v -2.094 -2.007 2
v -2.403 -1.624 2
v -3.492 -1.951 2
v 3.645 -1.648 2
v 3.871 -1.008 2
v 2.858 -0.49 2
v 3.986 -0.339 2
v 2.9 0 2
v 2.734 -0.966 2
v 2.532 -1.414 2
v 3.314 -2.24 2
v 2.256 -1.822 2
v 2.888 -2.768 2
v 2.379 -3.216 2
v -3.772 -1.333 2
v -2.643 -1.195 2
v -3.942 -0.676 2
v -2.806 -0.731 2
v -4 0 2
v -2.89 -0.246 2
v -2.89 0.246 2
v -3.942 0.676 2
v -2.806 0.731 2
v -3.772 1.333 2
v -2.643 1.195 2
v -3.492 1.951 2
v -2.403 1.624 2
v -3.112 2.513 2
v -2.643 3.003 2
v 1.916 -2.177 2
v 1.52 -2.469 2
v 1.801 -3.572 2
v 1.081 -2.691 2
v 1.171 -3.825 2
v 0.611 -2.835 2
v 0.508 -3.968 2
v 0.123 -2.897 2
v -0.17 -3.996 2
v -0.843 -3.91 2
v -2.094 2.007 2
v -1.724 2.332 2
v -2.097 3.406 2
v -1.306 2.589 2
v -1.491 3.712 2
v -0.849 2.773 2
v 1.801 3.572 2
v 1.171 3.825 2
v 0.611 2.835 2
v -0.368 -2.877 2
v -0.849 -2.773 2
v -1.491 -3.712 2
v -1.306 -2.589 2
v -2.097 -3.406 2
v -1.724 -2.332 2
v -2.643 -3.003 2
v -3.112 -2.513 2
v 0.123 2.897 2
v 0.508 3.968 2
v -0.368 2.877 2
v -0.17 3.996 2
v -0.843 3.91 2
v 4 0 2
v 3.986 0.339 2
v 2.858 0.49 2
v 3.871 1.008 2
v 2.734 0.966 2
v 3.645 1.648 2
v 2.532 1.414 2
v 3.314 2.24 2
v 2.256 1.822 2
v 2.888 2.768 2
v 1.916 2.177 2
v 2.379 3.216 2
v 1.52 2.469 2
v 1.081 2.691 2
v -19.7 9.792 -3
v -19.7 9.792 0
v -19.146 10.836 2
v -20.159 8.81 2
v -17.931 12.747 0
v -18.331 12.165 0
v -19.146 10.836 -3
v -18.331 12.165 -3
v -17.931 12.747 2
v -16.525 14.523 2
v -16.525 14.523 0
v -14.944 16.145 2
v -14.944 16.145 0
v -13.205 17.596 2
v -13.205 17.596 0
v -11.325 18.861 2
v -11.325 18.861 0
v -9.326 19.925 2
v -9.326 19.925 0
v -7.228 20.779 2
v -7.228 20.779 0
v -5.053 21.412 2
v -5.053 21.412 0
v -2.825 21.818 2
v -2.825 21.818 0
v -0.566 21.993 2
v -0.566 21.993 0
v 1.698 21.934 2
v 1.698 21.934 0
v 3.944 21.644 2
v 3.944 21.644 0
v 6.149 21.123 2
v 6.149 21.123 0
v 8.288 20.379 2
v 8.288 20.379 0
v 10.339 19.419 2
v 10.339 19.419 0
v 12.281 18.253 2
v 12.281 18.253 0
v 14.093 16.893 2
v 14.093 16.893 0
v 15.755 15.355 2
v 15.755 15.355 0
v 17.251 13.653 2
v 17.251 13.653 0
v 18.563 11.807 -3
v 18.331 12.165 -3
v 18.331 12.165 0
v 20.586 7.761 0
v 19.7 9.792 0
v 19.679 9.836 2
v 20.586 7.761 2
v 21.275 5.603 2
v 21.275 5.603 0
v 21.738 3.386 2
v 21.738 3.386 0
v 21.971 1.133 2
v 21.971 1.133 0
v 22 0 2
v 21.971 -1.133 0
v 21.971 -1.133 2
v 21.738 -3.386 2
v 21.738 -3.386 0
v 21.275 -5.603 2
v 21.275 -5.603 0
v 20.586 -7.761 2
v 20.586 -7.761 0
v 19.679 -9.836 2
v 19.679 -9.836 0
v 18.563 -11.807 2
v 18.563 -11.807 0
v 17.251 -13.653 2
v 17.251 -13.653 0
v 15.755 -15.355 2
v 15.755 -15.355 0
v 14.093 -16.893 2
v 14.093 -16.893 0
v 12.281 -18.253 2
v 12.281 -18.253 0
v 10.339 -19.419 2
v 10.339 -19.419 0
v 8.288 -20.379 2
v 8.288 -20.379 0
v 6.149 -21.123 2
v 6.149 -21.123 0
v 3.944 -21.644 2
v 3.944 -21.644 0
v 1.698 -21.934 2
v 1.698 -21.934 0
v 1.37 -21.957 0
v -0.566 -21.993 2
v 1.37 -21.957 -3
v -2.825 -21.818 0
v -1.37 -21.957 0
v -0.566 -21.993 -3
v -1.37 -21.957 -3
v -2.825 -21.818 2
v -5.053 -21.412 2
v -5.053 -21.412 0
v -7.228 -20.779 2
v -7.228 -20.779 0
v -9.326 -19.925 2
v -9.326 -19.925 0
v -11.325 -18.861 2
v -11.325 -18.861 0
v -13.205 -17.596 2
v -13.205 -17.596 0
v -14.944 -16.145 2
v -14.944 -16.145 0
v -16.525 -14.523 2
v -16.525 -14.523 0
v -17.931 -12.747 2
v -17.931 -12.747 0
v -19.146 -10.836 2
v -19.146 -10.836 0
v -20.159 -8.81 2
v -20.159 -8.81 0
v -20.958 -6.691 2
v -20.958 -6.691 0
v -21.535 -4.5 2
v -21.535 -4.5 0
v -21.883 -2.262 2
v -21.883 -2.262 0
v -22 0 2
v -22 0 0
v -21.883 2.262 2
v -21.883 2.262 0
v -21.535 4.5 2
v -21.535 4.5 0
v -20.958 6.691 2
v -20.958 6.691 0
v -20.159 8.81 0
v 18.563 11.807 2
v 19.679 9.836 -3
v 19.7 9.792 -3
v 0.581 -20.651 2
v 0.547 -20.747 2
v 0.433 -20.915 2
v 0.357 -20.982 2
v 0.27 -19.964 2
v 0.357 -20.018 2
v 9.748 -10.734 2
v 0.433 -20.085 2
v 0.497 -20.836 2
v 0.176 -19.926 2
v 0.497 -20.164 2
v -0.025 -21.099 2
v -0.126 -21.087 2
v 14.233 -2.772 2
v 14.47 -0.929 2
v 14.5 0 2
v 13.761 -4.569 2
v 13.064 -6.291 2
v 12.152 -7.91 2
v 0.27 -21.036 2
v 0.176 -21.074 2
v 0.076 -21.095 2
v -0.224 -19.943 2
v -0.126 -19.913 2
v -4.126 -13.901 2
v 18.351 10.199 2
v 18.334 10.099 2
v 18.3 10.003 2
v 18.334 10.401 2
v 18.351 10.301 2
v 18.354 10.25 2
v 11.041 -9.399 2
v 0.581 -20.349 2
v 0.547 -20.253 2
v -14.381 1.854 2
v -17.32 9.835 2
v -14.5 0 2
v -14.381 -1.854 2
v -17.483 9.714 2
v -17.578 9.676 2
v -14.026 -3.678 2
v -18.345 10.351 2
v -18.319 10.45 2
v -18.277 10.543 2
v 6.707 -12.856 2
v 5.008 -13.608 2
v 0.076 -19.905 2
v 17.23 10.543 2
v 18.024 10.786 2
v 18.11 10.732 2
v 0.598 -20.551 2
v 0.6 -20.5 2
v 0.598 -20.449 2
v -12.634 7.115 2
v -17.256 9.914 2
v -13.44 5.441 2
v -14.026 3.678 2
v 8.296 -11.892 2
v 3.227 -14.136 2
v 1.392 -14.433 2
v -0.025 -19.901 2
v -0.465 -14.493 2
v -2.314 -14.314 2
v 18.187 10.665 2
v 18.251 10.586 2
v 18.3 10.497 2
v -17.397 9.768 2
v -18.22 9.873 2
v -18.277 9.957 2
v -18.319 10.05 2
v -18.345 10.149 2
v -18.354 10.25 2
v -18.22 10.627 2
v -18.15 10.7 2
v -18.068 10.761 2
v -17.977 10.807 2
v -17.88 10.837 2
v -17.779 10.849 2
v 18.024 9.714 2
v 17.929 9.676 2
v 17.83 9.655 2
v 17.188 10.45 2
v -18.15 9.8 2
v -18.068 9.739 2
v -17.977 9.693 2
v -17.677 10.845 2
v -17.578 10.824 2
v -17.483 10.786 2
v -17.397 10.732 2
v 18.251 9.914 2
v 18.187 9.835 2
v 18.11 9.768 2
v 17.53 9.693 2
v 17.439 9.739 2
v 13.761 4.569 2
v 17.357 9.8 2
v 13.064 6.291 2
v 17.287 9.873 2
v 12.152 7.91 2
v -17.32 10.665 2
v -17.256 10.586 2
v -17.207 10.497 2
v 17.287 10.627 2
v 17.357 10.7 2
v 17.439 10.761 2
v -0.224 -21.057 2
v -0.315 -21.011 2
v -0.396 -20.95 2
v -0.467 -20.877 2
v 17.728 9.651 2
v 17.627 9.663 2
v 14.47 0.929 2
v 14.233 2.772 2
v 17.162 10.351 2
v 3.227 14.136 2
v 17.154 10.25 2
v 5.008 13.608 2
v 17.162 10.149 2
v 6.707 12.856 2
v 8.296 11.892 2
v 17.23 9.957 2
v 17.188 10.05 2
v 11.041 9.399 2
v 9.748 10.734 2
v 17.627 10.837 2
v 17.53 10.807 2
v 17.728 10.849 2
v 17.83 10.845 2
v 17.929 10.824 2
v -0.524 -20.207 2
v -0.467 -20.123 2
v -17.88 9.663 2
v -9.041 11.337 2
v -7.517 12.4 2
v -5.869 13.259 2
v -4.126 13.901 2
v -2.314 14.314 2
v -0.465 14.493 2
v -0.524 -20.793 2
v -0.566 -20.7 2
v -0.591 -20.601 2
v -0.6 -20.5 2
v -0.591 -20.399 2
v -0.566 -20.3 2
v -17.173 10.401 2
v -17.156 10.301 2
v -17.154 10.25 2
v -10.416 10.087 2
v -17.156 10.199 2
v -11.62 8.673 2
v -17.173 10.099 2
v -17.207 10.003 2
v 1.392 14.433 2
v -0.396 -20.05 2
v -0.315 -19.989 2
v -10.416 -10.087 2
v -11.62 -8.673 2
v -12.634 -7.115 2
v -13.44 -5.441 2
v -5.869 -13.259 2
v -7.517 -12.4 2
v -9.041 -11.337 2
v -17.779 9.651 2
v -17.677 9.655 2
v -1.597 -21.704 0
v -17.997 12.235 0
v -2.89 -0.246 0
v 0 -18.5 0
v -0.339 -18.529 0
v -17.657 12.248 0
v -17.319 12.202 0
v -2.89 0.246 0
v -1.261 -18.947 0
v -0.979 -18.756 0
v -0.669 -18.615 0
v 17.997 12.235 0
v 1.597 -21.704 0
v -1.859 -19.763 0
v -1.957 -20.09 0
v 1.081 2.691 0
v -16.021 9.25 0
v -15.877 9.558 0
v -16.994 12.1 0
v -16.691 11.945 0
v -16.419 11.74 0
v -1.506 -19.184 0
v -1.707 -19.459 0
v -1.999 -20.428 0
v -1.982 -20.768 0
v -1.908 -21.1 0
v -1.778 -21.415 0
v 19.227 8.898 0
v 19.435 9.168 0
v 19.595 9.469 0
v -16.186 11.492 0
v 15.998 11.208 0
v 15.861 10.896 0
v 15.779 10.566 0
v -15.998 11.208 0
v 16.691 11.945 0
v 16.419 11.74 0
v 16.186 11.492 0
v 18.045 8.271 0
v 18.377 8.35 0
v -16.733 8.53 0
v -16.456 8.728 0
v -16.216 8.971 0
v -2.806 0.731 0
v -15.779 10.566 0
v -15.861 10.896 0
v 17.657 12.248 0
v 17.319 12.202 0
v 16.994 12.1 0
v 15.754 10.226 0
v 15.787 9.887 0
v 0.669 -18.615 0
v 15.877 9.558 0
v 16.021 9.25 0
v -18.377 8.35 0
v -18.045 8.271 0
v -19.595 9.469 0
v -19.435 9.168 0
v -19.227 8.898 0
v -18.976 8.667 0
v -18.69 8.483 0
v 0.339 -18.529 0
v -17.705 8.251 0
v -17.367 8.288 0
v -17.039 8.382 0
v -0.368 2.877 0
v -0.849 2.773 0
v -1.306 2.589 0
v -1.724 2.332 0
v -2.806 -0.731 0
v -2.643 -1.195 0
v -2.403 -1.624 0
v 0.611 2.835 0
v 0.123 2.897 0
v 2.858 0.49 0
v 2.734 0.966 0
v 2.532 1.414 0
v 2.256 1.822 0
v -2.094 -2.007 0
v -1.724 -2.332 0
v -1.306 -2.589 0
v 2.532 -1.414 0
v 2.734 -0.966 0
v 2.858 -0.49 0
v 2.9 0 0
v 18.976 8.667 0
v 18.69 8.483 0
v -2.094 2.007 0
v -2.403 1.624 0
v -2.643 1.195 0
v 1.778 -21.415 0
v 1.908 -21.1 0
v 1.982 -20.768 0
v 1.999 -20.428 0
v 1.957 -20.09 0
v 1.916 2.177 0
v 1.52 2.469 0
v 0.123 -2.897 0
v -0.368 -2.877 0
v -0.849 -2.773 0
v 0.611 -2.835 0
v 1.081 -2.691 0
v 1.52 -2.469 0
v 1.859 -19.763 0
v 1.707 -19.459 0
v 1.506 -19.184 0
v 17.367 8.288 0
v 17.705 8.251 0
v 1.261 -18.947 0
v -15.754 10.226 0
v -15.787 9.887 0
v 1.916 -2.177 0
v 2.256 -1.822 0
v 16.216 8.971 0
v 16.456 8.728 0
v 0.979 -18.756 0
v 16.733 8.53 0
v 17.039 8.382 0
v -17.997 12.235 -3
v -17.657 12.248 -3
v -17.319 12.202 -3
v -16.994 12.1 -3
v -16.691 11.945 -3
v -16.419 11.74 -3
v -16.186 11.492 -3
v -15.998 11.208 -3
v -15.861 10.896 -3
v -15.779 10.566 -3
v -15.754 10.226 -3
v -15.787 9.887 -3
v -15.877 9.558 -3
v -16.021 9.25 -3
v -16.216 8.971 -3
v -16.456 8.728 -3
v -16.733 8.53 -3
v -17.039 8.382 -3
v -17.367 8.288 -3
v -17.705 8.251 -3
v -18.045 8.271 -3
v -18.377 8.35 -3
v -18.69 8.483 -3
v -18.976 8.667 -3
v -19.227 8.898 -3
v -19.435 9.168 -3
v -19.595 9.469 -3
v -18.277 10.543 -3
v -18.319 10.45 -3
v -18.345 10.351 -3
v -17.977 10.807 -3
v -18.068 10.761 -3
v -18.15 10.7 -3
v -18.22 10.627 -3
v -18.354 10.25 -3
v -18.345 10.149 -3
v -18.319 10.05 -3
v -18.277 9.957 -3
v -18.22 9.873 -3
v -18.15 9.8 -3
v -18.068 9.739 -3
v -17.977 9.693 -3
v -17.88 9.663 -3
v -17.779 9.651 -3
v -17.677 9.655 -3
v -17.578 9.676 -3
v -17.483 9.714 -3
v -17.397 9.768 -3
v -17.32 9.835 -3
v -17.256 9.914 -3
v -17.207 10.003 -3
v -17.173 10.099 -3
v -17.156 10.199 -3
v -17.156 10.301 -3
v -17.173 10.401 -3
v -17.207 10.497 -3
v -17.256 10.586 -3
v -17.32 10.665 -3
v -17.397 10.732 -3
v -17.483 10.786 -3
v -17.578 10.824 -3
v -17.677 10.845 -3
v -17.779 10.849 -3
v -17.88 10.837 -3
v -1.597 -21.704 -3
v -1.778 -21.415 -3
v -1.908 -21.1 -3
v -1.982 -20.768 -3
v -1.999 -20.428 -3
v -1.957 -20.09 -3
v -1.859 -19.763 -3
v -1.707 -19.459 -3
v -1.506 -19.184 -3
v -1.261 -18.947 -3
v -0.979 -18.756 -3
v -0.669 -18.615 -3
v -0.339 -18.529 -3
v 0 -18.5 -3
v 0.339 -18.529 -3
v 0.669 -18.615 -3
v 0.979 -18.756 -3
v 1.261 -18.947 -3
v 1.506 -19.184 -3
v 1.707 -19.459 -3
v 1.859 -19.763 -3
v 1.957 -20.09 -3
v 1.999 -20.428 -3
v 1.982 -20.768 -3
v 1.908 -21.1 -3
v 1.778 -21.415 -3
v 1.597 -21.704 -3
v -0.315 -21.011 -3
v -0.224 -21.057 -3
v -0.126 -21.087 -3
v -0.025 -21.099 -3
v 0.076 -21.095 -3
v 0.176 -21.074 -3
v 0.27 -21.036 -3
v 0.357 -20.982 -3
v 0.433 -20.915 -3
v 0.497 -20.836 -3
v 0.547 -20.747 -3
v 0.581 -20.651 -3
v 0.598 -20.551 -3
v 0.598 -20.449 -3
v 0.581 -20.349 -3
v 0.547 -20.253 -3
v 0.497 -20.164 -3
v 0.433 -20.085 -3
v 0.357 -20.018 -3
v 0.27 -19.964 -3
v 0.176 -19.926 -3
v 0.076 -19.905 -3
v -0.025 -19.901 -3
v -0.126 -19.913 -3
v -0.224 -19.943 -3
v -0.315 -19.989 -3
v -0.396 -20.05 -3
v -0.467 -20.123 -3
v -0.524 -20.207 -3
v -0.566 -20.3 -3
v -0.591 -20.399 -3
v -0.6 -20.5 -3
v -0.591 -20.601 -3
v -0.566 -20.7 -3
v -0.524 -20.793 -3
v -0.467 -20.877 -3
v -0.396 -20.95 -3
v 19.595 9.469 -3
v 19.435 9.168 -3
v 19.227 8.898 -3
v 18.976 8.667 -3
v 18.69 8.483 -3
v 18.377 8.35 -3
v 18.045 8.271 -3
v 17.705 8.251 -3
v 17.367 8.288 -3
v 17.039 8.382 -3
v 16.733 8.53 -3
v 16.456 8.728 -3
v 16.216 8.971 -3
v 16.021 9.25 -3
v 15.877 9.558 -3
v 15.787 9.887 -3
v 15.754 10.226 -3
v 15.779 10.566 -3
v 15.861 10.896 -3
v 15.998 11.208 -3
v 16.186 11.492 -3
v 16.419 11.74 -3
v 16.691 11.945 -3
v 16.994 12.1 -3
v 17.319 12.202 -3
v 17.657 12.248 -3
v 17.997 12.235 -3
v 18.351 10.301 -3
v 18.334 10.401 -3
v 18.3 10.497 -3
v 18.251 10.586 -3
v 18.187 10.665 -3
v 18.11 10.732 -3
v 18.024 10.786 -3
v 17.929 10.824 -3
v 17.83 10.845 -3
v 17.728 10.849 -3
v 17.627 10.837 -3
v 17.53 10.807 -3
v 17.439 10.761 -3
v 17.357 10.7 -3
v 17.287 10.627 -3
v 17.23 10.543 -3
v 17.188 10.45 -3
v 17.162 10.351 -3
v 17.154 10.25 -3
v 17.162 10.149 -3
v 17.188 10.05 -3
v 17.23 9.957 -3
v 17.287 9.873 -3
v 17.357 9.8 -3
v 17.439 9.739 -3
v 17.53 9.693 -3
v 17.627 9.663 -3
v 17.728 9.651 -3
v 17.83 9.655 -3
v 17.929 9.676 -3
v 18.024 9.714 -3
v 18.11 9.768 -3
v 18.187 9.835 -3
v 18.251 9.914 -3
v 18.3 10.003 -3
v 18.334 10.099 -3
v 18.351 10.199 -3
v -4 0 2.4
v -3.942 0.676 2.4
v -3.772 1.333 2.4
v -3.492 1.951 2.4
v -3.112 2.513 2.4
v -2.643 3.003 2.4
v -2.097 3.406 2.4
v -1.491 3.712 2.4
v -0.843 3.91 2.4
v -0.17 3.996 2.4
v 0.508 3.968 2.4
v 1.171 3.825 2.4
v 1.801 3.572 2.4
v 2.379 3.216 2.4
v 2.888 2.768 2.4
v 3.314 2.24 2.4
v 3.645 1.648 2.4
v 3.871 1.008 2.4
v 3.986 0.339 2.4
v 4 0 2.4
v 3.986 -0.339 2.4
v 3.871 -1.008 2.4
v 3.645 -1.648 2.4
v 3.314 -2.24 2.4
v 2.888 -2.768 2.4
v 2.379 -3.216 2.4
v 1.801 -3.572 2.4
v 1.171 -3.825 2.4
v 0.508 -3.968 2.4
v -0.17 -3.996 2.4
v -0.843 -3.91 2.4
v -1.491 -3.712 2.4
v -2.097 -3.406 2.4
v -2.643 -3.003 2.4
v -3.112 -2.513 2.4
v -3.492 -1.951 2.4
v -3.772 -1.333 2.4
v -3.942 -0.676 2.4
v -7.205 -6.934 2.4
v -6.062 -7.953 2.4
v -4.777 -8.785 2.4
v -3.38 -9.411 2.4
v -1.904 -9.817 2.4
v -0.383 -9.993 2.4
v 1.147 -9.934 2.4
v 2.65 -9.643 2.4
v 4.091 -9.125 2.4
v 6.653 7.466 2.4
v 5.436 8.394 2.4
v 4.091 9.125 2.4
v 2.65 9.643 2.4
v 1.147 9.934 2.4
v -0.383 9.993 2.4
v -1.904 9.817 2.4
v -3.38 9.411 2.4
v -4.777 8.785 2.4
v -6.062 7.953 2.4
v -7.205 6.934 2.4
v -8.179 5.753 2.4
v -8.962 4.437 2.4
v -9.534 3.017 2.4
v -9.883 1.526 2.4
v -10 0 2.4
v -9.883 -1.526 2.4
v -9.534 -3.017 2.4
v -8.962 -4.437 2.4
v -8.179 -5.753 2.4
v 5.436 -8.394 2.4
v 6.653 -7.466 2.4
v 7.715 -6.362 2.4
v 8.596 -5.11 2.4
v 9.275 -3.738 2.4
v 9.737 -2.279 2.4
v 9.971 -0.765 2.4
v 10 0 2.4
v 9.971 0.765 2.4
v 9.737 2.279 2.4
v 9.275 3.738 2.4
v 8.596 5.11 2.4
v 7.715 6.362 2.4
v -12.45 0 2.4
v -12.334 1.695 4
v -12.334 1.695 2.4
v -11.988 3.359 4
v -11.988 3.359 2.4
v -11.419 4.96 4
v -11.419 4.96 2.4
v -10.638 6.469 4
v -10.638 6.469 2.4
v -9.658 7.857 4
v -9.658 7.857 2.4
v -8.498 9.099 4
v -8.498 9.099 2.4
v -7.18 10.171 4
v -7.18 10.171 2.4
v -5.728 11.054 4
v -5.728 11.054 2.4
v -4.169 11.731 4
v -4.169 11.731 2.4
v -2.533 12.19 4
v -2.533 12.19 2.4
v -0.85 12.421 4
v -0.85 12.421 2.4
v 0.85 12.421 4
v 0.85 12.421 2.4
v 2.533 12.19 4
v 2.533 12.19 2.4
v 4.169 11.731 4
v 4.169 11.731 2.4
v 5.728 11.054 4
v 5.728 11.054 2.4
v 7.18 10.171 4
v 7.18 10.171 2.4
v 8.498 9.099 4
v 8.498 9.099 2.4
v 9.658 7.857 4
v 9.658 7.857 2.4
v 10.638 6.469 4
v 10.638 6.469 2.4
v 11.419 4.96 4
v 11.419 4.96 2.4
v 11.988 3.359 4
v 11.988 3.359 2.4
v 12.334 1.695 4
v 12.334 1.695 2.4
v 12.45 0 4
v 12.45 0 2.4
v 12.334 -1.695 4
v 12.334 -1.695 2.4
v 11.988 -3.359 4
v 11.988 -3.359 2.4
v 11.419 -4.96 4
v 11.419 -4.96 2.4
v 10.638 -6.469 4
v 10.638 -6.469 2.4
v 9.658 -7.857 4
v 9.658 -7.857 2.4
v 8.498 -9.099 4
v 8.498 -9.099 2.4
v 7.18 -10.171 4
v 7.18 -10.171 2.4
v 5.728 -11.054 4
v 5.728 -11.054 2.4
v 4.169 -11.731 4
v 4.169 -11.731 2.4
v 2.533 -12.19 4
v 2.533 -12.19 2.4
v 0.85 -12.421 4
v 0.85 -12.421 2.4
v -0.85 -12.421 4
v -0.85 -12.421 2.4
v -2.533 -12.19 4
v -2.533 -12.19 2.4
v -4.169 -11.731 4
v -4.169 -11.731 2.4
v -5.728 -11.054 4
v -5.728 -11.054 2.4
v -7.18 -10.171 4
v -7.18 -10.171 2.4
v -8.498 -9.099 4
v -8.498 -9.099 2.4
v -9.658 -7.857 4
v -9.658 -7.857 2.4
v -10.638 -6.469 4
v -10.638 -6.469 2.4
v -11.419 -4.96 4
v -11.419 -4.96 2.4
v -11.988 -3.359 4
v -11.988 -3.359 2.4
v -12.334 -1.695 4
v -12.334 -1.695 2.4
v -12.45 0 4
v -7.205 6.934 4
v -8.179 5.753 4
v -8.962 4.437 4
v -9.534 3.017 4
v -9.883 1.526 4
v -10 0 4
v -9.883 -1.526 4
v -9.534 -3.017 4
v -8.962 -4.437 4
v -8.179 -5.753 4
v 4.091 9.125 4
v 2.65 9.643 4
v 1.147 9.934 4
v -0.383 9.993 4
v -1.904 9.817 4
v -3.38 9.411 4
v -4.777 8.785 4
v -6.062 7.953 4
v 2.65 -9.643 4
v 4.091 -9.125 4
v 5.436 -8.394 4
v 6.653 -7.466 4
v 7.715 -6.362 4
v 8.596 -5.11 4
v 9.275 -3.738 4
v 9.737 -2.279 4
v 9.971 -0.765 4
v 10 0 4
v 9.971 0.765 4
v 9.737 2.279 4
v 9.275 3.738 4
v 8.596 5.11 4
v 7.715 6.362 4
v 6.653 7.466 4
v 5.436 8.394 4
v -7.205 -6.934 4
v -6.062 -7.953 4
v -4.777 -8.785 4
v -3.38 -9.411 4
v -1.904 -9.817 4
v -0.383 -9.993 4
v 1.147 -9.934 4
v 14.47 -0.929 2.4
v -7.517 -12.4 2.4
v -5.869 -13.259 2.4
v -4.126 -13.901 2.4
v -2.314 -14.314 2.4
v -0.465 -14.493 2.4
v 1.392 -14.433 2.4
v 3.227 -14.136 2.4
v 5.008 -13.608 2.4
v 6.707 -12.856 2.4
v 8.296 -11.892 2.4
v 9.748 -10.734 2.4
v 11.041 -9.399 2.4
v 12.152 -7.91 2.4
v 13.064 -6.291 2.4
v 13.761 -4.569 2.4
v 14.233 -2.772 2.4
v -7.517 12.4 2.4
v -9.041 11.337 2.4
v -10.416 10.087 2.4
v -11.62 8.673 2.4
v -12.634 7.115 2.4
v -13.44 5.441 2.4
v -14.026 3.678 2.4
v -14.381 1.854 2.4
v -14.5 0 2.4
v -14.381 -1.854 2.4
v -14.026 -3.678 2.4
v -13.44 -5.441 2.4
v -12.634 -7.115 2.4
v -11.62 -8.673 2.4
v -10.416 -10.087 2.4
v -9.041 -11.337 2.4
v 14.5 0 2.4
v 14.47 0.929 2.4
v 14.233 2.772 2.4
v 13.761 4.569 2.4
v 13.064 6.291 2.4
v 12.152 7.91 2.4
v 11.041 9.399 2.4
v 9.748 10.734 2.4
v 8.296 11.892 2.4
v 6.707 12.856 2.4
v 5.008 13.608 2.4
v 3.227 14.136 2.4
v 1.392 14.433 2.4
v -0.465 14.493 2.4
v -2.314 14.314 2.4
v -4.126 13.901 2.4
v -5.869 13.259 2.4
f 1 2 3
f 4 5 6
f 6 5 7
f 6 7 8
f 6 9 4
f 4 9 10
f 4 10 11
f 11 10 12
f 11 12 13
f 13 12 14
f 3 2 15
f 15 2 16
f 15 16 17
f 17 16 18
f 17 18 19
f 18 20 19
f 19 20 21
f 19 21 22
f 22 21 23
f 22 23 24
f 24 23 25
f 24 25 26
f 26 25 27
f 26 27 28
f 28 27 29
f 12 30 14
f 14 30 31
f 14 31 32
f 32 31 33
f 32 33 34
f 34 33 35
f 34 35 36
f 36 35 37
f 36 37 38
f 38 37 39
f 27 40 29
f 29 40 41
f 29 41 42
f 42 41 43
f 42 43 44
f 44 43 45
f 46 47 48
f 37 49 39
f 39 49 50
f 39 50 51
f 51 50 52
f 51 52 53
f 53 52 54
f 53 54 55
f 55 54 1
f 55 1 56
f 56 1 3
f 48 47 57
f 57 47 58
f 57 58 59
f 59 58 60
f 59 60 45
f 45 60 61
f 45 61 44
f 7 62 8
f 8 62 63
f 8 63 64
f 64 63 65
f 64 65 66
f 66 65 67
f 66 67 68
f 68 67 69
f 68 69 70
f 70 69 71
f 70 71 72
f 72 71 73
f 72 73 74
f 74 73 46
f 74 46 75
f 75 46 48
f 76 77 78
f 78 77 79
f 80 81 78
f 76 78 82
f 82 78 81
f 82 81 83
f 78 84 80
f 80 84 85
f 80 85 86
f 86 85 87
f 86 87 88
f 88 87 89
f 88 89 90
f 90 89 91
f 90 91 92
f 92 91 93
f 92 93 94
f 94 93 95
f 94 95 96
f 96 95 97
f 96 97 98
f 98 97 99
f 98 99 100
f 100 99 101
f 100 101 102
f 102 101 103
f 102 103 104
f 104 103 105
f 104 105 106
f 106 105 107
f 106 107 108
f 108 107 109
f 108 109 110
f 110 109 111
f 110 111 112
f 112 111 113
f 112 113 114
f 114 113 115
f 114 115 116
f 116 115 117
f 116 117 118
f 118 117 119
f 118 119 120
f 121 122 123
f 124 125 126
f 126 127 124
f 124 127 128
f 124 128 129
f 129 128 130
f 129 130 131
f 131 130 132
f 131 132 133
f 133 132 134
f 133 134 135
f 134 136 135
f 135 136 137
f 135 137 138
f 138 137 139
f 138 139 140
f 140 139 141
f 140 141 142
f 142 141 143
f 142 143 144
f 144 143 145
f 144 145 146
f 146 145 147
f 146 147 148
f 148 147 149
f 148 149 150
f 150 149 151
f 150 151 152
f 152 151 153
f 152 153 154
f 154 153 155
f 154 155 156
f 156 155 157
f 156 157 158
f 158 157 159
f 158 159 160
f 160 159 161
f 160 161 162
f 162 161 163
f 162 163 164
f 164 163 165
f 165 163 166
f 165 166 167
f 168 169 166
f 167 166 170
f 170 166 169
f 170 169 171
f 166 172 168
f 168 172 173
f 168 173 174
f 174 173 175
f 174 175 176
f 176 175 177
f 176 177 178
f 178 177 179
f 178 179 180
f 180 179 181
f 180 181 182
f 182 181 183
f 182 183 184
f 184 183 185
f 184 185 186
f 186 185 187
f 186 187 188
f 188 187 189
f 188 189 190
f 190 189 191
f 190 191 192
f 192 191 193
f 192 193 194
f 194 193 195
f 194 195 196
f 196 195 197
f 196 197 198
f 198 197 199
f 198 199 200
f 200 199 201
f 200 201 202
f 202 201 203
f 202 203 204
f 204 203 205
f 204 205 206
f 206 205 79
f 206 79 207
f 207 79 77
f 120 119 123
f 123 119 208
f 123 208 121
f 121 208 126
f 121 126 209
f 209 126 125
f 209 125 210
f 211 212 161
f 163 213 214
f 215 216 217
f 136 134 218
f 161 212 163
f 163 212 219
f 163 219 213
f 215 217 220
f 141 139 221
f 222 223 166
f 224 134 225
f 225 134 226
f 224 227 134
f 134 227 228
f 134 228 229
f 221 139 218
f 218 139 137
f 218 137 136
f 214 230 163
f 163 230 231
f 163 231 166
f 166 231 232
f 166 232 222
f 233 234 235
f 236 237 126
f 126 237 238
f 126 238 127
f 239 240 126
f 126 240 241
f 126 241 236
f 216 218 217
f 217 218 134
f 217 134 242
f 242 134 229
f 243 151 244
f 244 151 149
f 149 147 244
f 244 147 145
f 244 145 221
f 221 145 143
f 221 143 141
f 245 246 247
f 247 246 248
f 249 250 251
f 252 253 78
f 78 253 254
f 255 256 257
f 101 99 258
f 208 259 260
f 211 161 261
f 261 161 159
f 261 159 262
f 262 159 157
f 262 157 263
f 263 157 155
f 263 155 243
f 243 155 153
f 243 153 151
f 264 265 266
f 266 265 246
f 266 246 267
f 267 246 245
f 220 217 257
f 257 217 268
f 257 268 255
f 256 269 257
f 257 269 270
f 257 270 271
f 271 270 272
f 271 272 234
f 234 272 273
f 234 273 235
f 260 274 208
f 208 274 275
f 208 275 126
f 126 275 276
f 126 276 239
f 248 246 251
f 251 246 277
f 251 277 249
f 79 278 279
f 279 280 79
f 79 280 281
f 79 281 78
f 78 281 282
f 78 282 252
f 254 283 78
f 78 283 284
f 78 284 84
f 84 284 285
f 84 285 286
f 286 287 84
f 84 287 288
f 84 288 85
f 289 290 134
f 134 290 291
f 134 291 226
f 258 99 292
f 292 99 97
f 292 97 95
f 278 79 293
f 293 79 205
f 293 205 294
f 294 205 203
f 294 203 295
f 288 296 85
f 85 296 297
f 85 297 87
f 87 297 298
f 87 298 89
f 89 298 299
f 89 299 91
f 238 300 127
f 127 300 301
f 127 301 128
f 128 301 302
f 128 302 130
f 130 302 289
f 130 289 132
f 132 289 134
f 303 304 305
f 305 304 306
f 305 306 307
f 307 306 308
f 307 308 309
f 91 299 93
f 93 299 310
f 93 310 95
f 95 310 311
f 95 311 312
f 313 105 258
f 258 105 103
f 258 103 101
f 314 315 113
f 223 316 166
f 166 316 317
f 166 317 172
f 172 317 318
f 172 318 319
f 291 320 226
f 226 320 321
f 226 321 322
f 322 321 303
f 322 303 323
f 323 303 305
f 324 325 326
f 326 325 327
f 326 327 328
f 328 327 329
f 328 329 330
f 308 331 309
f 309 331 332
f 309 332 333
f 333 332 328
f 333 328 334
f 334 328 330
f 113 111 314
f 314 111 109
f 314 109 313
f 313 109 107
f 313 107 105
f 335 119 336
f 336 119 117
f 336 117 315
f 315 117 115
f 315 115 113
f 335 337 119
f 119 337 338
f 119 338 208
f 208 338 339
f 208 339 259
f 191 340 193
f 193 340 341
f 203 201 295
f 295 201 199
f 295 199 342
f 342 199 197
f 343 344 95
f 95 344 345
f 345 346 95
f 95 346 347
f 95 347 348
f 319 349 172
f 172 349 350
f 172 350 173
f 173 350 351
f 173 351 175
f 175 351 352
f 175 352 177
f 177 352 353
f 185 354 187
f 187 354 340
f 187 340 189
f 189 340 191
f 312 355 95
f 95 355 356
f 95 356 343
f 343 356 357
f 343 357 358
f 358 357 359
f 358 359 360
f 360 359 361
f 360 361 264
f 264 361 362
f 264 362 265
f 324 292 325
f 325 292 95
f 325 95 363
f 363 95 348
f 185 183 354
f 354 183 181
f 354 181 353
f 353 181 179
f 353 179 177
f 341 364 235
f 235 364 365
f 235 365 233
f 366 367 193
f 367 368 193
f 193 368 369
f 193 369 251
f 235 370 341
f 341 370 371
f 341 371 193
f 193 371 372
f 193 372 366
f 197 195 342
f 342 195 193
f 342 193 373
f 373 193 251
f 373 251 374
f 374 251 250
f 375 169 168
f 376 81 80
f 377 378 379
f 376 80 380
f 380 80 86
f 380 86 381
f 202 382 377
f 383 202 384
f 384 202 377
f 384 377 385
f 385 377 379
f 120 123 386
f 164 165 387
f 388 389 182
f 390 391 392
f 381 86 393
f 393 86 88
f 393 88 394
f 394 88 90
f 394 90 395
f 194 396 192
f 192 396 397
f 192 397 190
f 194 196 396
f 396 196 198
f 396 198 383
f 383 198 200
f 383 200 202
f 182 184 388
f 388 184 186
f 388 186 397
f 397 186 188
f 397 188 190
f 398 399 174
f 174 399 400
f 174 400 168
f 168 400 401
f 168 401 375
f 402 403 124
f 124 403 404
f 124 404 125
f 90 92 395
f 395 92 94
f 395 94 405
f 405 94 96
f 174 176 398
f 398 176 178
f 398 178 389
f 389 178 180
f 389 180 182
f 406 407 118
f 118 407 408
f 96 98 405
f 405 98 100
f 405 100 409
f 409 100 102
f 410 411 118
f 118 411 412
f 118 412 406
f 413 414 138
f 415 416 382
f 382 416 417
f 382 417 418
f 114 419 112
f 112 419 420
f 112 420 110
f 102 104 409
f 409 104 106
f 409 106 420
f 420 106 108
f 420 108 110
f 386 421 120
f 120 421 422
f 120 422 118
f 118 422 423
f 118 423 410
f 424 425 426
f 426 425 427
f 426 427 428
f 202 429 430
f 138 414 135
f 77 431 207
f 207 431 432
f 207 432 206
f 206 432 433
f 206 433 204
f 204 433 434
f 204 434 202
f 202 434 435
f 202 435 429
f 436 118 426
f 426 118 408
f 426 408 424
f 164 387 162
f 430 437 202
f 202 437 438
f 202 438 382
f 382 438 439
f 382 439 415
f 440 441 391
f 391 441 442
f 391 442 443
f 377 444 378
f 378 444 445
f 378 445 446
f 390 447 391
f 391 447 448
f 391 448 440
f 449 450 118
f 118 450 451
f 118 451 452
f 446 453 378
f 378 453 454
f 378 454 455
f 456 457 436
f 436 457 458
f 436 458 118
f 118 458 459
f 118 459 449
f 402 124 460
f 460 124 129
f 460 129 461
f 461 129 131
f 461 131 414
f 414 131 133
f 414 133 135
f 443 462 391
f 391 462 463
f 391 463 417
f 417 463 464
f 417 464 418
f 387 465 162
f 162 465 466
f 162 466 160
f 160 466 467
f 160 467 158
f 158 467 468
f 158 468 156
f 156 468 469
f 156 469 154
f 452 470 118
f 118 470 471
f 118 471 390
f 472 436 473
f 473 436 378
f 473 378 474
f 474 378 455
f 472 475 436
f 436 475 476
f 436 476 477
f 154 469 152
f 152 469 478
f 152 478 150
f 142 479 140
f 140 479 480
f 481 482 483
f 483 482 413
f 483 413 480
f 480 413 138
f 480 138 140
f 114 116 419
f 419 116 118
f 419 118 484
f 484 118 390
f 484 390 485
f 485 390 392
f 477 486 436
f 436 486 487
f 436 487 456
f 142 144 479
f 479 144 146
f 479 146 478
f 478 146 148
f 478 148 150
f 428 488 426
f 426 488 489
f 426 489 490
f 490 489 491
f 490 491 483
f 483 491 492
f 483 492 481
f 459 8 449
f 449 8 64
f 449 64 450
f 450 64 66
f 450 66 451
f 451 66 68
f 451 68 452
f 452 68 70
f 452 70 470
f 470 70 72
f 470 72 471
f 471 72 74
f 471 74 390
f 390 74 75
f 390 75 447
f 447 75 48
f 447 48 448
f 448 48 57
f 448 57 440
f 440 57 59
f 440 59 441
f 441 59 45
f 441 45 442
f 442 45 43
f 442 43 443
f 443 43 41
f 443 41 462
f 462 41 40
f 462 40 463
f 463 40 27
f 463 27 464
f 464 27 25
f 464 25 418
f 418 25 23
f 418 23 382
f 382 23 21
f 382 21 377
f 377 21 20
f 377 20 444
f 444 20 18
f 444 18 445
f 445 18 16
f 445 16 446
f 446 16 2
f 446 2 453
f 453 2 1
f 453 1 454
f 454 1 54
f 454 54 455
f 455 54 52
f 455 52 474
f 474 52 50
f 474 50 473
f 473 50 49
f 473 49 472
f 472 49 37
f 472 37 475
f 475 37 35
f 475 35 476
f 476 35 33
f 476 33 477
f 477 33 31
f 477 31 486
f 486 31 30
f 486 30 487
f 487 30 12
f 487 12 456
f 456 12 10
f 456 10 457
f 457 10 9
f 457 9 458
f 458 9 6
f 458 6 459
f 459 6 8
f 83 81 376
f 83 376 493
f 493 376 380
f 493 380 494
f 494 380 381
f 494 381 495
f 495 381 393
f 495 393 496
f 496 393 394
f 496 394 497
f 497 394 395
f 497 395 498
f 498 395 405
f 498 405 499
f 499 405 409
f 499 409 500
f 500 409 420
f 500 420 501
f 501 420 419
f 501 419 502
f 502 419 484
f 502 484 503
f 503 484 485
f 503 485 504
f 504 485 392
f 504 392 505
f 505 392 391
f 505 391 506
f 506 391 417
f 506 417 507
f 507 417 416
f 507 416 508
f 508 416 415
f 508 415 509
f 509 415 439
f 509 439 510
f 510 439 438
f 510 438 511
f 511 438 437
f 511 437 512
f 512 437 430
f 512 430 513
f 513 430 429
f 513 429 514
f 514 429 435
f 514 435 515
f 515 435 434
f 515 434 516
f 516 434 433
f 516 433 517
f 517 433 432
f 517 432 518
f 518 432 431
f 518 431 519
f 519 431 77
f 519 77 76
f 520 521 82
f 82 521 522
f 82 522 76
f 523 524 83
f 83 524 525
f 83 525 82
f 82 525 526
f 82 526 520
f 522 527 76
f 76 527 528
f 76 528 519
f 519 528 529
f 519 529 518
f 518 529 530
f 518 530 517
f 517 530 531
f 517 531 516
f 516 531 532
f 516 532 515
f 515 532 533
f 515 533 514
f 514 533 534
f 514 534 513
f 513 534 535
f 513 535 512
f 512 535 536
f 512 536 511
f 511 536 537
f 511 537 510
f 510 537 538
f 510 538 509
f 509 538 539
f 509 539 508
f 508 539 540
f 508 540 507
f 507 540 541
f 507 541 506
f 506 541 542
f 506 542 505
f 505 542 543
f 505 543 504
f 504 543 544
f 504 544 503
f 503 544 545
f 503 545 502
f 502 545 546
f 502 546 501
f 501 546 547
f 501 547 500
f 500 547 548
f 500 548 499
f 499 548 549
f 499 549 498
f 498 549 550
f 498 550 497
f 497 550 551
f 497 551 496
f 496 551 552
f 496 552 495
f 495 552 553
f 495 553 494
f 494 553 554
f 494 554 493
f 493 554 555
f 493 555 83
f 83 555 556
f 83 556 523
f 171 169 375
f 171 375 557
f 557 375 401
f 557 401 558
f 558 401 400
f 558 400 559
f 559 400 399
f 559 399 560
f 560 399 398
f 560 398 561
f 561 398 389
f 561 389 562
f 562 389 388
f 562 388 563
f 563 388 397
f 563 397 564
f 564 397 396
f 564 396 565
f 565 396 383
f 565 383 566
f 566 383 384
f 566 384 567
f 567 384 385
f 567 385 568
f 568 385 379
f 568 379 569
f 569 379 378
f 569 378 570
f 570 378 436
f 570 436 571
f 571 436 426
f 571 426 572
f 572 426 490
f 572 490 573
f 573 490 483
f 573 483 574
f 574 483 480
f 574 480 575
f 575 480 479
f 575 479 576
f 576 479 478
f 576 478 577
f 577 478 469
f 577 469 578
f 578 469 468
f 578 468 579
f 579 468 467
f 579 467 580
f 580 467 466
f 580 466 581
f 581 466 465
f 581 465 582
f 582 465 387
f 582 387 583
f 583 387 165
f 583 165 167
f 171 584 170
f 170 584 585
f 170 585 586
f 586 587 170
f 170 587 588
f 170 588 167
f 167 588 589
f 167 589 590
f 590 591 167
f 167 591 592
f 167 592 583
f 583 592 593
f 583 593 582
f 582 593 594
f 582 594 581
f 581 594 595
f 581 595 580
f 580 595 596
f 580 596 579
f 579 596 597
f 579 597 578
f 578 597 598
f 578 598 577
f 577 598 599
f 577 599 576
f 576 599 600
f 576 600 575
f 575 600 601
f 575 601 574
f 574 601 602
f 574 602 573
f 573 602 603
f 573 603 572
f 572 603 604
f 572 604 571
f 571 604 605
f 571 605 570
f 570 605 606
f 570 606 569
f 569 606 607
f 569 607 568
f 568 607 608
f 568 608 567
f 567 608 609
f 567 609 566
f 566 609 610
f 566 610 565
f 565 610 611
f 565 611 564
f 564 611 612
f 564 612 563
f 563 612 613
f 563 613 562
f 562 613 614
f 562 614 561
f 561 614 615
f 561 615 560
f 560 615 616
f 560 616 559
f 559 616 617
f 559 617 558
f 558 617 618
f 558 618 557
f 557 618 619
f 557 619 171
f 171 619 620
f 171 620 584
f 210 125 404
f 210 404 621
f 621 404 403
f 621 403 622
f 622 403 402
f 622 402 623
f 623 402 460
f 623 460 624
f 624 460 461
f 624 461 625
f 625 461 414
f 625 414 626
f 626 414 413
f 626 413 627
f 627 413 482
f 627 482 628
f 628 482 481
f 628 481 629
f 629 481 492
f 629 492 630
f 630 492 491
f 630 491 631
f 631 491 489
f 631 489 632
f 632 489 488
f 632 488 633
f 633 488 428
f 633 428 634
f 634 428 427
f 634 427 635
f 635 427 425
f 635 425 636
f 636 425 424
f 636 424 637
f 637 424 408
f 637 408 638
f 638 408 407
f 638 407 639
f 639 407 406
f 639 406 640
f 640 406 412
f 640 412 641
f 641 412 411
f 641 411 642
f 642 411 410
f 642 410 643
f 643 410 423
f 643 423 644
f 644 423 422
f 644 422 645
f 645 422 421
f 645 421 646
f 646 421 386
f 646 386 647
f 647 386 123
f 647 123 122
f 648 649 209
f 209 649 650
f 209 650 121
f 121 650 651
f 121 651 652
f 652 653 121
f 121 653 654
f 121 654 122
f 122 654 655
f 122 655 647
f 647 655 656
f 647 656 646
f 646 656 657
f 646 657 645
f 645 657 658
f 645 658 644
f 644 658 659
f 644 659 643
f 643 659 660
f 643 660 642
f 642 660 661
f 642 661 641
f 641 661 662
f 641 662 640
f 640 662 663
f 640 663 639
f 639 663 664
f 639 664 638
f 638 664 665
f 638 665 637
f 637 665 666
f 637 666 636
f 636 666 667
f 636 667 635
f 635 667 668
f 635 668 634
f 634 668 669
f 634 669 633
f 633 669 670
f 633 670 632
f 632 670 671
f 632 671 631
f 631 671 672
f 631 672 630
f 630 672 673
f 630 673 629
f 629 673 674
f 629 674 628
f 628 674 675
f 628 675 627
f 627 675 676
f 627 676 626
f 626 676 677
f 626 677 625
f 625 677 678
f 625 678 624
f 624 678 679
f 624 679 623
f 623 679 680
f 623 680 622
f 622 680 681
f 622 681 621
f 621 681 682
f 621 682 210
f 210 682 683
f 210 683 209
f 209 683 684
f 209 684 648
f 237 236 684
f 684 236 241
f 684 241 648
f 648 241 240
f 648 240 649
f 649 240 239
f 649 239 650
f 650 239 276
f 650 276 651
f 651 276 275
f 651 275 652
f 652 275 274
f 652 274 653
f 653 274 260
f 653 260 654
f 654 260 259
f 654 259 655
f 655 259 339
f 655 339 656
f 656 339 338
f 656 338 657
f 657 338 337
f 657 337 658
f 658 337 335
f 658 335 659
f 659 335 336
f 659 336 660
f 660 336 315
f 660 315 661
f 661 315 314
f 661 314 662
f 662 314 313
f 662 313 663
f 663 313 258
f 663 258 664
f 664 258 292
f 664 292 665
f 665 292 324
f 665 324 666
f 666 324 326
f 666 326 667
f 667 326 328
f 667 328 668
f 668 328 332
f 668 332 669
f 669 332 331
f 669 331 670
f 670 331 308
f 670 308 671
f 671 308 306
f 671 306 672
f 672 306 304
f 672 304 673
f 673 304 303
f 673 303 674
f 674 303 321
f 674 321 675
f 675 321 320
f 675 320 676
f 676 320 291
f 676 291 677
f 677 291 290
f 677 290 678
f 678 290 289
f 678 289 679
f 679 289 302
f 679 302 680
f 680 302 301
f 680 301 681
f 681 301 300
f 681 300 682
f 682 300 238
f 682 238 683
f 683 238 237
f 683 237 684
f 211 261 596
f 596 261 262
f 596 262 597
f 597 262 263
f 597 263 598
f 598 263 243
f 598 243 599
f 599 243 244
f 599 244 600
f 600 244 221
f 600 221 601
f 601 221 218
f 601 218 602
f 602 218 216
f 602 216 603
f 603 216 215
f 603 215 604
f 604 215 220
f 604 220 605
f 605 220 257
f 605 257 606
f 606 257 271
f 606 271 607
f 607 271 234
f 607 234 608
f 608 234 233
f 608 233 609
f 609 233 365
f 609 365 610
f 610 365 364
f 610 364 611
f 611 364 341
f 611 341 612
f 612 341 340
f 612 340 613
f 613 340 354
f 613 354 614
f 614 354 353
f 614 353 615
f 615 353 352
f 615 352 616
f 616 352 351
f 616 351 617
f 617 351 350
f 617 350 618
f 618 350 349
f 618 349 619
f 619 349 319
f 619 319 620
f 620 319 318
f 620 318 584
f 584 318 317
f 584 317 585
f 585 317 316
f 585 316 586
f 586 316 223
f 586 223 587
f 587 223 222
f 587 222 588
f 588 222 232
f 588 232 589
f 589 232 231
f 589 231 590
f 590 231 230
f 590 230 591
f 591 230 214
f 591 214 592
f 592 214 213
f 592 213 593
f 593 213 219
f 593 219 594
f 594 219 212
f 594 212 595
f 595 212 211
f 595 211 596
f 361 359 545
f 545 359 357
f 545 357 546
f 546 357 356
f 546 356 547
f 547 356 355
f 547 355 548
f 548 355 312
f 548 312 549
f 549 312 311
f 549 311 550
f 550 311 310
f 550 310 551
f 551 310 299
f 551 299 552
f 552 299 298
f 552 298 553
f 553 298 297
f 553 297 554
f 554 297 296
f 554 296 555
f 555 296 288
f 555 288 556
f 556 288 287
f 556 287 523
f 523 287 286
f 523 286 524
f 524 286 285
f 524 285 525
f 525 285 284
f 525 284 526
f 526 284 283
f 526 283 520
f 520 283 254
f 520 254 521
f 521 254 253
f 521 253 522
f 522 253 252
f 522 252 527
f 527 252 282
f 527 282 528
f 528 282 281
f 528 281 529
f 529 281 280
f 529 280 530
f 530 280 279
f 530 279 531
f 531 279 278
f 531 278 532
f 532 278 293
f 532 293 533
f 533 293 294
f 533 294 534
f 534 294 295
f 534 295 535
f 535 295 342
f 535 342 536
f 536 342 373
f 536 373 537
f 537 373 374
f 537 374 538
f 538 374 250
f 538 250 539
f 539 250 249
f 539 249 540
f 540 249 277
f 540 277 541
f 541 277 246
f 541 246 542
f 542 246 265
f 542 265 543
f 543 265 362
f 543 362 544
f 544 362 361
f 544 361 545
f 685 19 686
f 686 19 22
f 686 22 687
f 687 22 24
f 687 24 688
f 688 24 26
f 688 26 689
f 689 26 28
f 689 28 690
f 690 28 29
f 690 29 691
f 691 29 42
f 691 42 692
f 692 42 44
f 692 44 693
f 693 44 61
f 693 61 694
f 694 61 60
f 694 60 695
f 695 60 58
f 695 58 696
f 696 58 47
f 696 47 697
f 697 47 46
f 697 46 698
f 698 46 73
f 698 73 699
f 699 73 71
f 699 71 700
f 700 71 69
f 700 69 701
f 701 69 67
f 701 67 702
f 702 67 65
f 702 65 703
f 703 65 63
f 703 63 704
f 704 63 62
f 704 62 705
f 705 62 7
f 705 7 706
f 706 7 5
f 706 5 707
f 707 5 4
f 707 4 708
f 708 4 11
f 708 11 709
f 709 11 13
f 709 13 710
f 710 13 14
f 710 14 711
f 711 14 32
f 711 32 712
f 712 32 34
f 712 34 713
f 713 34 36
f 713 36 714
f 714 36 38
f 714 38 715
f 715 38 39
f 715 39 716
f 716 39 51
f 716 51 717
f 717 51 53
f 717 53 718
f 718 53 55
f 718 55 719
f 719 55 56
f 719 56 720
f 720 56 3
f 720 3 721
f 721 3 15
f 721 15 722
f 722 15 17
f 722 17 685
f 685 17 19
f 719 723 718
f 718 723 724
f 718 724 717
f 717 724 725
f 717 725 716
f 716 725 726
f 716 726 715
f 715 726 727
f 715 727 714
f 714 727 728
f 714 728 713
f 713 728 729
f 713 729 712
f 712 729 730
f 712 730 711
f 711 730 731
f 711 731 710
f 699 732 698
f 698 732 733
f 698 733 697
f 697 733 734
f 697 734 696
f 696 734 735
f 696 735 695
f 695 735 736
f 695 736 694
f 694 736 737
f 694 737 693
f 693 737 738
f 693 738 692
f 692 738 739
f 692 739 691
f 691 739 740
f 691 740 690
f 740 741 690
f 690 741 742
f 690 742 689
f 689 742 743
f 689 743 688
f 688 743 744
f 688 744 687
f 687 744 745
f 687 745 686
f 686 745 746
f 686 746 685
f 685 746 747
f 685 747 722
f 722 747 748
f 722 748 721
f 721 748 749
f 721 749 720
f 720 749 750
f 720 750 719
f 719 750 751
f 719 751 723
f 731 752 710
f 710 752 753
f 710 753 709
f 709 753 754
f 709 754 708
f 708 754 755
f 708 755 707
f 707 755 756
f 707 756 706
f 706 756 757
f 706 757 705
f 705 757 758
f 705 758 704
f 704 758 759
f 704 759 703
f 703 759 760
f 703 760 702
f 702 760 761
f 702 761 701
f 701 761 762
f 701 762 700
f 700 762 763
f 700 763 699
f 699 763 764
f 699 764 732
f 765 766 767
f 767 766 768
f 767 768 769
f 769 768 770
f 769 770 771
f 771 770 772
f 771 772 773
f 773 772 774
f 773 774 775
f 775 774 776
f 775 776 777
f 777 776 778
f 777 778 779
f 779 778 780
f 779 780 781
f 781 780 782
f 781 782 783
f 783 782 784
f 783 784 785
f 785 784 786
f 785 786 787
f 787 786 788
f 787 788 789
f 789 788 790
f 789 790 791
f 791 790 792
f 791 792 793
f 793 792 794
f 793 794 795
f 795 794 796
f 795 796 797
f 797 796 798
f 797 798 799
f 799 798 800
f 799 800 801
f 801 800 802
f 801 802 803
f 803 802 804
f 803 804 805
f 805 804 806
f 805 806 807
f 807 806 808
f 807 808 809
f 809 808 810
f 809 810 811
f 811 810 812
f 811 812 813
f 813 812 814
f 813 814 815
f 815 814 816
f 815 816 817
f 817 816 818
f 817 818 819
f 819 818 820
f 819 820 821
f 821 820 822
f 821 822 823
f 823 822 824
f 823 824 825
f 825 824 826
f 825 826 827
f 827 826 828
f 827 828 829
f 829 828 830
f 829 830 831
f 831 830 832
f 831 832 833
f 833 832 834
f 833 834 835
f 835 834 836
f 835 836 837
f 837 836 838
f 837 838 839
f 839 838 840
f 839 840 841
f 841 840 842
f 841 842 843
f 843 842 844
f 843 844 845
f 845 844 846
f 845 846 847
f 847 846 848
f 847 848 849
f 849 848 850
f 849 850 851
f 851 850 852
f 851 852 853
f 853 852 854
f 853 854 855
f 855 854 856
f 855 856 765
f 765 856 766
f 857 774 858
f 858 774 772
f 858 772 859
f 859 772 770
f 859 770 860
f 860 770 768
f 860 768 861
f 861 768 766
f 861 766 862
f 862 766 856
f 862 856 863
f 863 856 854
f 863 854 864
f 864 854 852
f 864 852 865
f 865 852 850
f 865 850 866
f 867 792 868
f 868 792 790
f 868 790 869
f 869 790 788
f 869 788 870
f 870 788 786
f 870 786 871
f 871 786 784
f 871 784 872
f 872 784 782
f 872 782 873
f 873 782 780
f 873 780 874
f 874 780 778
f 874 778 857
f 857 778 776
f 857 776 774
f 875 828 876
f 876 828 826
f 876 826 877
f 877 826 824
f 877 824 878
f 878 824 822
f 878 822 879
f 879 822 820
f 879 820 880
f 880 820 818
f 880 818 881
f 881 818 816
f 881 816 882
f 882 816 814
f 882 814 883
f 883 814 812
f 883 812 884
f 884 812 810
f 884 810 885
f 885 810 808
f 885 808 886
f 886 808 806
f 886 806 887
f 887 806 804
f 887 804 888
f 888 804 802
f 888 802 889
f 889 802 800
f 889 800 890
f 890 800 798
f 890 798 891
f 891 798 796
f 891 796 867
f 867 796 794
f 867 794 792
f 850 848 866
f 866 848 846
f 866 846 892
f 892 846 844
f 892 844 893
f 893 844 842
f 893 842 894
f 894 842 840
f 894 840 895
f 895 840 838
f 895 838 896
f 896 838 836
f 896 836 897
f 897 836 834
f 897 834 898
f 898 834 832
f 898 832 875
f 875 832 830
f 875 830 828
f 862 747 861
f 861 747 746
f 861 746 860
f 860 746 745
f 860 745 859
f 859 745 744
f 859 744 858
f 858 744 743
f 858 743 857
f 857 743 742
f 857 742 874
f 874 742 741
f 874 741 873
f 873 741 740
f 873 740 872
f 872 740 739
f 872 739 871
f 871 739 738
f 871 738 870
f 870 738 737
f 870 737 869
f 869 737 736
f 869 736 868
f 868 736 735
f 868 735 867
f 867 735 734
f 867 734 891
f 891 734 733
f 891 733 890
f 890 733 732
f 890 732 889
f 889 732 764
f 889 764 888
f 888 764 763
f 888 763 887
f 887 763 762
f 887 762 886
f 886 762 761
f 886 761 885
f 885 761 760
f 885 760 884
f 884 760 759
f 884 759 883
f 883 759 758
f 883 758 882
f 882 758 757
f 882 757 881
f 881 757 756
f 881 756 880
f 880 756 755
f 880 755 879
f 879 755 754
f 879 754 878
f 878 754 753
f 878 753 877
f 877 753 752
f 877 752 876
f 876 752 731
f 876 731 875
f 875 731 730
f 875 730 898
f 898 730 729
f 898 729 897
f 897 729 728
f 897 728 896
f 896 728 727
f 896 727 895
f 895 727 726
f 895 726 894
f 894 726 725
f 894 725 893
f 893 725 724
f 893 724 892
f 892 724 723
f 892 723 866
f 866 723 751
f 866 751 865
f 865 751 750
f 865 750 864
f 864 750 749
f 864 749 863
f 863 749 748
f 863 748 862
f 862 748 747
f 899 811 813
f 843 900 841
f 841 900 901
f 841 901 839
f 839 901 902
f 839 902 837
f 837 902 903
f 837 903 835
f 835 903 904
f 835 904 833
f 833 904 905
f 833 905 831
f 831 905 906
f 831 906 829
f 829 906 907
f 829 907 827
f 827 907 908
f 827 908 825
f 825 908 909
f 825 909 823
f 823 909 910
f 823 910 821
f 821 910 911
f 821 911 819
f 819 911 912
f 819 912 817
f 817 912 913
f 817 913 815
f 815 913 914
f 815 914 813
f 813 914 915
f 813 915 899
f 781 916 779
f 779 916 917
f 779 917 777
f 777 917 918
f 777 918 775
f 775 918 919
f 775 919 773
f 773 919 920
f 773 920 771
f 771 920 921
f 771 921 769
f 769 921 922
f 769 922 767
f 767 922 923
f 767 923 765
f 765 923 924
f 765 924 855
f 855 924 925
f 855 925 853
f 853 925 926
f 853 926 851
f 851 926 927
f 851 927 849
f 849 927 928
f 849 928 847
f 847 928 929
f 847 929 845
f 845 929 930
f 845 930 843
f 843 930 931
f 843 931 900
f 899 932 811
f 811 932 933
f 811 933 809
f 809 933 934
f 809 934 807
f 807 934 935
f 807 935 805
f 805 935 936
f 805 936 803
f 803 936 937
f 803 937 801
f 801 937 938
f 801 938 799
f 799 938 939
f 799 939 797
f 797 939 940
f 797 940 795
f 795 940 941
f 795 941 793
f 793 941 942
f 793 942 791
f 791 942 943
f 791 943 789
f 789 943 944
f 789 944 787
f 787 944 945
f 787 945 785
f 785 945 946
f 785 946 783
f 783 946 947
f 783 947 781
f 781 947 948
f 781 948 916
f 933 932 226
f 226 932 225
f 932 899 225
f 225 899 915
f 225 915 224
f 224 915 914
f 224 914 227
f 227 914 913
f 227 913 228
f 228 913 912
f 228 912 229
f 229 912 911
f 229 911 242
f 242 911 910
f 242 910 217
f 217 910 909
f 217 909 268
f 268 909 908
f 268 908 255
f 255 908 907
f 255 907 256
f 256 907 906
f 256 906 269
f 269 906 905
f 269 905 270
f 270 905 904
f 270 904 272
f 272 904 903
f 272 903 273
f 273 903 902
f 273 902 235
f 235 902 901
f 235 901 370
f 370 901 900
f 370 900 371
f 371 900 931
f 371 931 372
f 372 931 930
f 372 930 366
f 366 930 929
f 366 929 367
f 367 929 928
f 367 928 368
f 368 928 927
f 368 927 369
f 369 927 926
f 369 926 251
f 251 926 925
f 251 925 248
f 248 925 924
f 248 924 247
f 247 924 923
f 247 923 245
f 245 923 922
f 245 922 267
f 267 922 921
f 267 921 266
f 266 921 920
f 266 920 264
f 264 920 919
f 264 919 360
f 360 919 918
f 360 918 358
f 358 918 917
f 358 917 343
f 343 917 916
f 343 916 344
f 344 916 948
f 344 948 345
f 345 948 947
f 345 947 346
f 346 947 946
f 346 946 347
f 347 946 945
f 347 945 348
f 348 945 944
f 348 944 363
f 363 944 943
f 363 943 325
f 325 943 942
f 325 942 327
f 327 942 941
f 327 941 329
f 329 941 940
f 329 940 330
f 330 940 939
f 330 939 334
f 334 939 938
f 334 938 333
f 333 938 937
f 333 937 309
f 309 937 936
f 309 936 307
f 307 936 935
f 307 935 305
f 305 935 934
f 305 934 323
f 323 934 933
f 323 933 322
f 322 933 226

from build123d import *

# Parameters (mm, degrees)
SKETCH_1_R          = 22
EXTRUDE_1_DEPTH     = 2
SKETCH_2_R          = 12.45
SKETCH_2_R_2        = 10
EXTRUDE_2_DEPTH     = 2
SKETCH_3_R          = 2.9
CUT_EXTRUDE_1_DEPTH = 11
EXTRUDE_3_DEPTH     = 3
SKETCH_5_R          = 0.6
CUT_EXTRUDE_2_DEPTH = 16
SKETCH_6_R          = 14.5
SKETCH_6_R_2        = 4
EXTRUDE_4_DEPTH     = 0.4


with BuildPart() as part:
    # 草图1 → 凸台-拉伸1 (new body)
    with BuildSketch(Plane.XY):
        Circle(SKETCH_1_R)
    extrude(amount=EXTRUDE_1_DEPTH)

    # 草图2 → 凸台-拉伸2 (add)
    with BuildSketch(Plane.XY.offset(2)):
        Circle(SKETCH_2_R)
        Circle(SKETCH_2_R_2, mode=Mode.SUBTRACT)
    extrude(amount=EXTRUDE_2_DEPTH)

    # 草图3 → 切除-拉伸1 (cut)
    with BuildSketch(Plane.XY.offset(2)):
        Circle(SKETCH_3_R)
    extrude(amount=-CUT_EXTRUDE_1_DEPTH, mode=Mode.SUBTRACT)

    # 草图4 → 凸台-拉伸3 (add)
    with BuildSketch(Plane(origin=(0, 0, 0), x_dir=(-1, 0, 0), z_dir=(0, 0, -1))):
        with BuildLine():
            ThreePointArc((1.369754339, -21.957317073), (0, -18.5), (-1.369754339, -21.957317073))
            ThreePointArc((-1.369754339, -21.957317073), (0, -22), (1.369754339, -21.957317073))
        make_face()
        with BuildLine():
            ThreePointArc((-19.700471554, 9.792416482), (-16.02146997, 9.25), (-18.330717215, 12.164900591))
            ThreePointArc((-18.330717215, 12.164900591), (-19.052558883, 11), (-19.700471554, 9.792416482))
        make_face()
        with BuildLine():
            ThreePointArc((18.330717215, 12.164900591), (16.02146997, 9.25), (19.700471554, 9.792416482))
            ThreePointArc((19.700471554, 9.792416482), (19.052558883, 11), (18.330717215, 12.164900591))
        make_face()
    extrude(amount=EXTRUDE_3_DEPTH)

    # 草图5 → 切除-拉伸2 (cut)
    with BuildSketch(Plane(origin=(0, 0, -3), x_dir=(-1, 0, 0), z_dir=(0, 0, -1))):
        with Locations((0, -20.5)):
            Circle(SKETCH_5_R)
        with Locations((-17.753520778, 10.25)):
            Circle(SKETCH_5_R)
        with Locations((17.753520778, 10.25)):
            Circle(SKETCH_5_R)
    extrude(amount=-CUT_EXTRUDE_2_DEPTH, mode=Mode.SUBTRACT)

    # 草图6 → 凸台-拉伸4 (add)
    with BuildSketch(Plane.XY.offset(2)):
        Circle(SKETCH_6_R)
        Circle(SKETCH_6_R_2, mode=Mode.SUBTRACT)
    extrude(amount=EXTRUDE_4_DEPTH)


solid = part.part
